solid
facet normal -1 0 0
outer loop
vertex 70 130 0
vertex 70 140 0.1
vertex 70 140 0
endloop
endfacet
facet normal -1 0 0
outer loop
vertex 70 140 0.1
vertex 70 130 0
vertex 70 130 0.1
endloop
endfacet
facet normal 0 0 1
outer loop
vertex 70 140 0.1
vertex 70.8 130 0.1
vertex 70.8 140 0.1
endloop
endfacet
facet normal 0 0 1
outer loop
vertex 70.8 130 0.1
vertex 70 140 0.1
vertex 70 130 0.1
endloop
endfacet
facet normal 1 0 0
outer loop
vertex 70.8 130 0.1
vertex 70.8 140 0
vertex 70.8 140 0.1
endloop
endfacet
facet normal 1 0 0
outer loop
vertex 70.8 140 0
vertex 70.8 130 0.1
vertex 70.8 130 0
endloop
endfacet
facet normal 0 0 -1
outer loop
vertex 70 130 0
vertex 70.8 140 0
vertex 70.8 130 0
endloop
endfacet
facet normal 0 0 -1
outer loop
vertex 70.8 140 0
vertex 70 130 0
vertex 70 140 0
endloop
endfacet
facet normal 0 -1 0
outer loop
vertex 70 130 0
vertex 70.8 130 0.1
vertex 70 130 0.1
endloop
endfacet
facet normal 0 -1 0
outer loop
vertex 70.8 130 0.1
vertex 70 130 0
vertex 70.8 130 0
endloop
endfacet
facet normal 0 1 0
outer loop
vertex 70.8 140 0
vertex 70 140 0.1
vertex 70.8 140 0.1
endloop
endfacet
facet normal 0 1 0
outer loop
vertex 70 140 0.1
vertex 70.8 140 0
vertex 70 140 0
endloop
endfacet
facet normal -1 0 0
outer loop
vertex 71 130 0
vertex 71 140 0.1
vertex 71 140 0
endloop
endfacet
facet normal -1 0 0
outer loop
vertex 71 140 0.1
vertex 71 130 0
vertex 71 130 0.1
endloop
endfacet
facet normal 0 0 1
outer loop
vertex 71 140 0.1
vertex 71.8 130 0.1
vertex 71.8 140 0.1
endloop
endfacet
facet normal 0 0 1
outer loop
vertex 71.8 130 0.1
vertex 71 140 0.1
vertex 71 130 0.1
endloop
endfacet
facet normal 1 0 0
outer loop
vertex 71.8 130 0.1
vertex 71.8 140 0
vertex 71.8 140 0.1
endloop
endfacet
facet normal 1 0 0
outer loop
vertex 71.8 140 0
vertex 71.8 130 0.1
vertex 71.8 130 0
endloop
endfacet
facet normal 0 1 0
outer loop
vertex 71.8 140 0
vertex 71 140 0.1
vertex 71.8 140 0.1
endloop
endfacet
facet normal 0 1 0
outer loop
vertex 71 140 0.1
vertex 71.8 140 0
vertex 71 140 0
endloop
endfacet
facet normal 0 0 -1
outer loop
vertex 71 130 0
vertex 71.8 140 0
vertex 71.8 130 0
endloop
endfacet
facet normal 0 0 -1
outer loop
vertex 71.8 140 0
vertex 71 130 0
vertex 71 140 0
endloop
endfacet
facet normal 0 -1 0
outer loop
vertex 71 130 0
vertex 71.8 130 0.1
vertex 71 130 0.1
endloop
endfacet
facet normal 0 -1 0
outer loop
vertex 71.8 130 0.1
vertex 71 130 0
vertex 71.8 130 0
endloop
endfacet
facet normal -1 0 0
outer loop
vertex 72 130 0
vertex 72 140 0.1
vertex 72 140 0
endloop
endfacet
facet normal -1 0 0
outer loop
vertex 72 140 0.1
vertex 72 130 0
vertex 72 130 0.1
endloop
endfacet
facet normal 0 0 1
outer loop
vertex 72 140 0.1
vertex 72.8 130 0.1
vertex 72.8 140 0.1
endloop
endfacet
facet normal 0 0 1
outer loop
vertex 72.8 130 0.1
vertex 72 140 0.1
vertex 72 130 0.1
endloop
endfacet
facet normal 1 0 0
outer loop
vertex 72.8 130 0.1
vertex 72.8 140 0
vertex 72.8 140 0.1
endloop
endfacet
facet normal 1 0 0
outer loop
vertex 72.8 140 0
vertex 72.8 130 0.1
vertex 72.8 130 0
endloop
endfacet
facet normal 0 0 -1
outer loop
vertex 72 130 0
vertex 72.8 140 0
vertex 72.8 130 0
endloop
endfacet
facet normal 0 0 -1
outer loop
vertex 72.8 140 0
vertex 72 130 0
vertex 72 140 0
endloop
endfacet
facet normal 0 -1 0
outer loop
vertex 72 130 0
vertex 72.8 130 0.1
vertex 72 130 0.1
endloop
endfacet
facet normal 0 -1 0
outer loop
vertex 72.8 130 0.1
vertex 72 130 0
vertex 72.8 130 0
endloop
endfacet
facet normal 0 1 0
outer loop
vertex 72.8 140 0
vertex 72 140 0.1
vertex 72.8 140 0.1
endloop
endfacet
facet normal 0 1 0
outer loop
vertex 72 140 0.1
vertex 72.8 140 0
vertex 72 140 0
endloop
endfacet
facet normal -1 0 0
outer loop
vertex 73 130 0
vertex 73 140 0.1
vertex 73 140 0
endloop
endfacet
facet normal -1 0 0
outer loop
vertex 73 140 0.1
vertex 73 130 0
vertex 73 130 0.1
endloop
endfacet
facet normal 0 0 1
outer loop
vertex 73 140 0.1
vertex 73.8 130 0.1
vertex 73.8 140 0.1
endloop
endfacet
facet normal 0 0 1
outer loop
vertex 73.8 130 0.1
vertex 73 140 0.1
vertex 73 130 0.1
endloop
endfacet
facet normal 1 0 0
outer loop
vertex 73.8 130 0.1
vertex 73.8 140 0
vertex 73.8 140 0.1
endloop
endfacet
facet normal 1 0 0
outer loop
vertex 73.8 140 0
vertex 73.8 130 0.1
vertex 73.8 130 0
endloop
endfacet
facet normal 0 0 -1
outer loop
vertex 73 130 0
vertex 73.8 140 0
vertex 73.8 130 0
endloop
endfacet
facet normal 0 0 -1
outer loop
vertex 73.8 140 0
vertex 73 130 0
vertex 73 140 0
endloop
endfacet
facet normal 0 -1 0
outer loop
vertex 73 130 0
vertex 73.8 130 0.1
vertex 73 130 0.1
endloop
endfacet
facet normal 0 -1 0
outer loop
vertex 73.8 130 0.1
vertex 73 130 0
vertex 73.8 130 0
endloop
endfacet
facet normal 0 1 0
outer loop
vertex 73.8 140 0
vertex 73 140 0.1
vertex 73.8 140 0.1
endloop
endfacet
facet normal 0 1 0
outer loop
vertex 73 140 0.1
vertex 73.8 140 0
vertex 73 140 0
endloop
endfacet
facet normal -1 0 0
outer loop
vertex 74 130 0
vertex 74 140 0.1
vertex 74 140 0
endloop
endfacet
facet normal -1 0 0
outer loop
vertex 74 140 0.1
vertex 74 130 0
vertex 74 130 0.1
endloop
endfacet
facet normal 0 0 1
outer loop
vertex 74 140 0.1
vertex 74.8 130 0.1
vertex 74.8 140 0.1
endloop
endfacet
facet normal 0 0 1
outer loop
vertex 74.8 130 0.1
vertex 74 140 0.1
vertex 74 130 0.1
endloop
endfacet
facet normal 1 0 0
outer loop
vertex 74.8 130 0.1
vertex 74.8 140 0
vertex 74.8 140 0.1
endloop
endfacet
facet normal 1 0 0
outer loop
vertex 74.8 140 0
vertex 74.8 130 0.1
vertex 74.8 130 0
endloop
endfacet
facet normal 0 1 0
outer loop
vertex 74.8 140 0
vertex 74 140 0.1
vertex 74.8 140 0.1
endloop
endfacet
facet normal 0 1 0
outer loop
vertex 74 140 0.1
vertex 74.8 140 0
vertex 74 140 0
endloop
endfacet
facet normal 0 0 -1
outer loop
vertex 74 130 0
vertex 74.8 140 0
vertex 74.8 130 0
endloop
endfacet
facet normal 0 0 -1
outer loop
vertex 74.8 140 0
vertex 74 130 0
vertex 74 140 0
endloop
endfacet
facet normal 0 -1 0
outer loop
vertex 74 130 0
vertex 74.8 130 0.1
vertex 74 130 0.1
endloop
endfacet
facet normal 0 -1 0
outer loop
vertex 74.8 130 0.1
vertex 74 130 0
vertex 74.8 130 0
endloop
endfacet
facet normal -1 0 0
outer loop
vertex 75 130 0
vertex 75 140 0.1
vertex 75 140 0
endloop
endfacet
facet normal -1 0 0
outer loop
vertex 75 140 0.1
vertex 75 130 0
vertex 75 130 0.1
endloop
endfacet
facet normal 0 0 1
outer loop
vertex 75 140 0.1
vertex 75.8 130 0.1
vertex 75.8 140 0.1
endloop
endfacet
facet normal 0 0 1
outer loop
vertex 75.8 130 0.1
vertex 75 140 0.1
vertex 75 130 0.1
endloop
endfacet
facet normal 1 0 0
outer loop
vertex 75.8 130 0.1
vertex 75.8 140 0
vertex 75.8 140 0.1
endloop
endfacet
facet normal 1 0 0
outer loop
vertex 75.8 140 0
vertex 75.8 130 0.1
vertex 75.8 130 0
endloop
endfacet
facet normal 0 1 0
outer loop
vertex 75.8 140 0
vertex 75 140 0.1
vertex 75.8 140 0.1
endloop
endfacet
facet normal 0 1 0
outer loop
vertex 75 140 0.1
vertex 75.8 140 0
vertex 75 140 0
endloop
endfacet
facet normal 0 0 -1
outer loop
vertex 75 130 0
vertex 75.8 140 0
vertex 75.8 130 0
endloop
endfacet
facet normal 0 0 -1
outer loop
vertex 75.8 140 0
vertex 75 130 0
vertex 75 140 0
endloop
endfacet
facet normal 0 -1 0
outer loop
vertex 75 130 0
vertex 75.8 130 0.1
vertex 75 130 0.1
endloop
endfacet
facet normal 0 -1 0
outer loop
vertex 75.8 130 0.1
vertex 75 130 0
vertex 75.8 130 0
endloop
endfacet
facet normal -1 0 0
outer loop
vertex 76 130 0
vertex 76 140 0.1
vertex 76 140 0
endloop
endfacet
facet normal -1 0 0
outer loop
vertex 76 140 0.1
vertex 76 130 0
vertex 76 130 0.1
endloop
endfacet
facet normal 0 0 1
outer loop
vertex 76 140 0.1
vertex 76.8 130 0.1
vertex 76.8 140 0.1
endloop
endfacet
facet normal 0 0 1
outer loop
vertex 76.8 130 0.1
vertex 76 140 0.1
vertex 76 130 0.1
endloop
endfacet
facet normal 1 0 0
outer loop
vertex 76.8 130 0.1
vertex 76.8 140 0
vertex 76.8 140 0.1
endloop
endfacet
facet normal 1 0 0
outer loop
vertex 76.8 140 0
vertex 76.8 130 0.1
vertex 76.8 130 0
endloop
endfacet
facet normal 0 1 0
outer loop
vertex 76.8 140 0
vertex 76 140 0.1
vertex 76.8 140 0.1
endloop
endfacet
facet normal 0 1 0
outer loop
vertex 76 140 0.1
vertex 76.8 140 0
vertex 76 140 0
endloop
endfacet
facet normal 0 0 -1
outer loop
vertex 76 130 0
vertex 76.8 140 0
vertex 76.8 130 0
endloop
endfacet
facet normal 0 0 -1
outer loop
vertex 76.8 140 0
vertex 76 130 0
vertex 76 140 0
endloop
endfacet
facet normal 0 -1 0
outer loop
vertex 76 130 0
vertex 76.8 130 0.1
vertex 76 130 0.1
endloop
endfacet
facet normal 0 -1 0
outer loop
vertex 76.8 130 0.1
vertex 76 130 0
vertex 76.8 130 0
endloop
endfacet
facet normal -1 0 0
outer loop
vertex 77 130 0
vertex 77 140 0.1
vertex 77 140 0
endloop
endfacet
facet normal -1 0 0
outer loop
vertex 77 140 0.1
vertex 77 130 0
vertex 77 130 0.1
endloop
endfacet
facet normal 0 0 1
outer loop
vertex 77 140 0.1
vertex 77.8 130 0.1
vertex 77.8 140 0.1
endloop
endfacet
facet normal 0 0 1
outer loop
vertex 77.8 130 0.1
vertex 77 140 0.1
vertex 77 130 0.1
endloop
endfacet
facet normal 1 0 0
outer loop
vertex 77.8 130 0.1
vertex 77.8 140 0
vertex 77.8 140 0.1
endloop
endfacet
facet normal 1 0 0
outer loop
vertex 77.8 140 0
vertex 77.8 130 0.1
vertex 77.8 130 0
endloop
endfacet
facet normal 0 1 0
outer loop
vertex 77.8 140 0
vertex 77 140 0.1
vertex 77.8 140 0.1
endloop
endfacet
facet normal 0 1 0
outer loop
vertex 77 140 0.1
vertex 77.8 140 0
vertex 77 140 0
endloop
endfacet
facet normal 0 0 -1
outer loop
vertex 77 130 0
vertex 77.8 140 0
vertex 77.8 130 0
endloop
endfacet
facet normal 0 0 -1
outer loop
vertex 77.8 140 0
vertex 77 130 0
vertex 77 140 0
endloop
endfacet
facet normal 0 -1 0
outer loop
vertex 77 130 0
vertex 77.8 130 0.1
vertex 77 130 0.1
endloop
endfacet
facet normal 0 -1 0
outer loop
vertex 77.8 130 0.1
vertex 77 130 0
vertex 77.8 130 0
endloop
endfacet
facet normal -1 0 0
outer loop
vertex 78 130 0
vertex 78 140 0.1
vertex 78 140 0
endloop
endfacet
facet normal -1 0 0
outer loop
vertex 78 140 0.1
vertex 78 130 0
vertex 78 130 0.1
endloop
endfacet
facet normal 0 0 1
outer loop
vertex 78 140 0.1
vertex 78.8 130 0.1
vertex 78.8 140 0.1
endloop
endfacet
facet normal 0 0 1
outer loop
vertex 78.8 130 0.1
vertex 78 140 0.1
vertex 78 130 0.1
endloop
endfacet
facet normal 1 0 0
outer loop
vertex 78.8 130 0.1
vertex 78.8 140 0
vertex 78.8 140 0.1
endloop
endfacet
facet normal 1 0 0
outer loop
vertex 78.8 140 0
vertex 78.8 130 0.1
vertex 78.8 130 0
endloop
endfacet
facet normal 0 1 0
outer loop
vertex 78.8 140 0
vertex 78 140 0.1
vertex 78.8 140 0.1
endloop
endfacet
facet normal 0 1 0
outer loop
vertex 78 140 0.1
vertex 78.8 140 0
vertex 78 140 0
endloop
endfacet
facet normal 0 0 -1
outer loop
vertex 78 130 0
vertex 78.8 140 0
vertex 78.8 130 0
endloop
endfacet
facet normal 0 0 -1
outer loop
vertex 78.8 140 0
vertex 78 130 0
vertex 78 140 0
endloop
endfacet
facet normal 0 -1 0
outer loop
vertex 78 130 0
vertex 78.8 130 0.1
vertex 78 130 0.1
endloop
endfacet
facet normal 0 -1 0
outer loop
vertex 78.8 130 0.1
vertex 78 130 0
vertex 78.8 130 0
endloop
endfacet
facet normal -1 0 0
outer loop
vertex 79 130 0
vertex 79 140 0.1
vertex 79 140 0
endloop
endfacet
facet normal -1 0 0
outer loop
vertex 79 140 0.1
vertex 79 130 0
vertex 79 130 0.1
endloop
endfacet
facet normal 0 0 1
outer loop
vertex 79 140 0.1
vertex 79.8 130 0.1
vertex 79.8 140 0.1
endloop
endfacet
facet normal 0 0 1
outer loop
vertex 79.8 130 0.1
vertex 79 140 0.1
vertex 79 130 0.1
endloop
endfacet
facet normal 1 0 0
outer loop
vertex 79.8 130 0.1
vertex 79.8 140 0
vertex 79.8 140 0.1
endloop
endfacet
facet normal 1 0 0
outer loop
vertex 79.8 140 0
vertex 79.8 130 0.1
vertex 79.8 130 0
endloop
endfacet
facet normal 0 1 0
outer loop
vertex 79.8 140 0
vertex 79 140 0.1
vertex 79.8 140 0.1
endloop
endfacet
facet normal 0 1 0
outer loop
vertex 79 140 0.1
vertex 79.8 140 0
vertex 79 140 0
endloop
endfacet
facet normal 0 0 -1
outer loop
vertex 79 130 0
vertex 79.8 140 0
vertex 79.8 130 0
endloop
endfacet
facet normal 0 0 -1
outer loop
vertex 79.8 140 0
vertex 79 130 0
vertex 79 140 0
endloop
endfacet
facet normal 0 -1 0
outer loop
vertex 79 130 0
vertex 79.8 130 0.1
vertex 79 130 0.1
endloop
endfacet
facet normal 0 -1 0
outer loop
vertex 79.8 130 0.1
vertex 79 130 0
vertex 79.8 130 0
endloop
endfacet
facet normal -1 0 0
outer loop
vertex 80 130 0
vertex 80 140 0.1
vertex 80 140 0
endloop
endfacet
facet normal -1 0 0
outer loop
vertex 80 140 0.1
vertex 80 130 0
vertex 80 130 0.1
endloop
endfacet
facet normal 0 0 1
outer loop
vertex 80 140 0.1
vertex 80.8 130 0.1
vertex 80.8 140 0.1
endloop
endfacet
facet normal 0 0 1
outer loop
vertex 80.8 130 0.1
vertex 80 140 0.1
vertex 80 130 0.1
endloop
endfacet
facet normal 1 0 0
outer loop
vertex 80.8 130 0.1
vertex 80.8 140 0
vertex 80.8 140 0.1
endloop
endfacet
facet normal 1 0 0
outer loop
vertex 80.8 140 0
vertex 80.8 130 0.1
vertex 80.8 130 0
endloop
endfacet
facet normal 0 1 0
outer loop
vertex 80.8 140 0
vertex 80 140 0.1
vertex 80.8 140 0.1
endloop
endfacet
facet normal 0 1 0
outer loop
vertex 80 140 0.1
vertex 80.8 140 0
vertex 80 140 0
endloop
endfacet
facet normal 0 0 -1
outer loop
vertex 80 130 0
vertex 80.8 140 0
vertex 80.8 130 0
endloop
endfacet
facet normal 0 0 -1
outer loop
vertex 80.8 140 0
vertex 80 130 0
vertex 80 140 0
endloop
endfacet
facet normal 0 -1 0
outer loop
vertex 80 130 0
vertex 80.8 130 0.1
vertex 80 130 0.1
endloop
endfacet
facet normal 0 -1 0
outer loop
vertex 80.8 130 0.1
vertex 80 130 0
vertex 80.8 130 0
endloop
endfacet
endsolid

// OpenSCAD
translate([10+60,10+120,0])
        for (i = [0 : 10]){
            translate([i,0,0])
                cube(size = [0.8,10,0.1]);
    }
